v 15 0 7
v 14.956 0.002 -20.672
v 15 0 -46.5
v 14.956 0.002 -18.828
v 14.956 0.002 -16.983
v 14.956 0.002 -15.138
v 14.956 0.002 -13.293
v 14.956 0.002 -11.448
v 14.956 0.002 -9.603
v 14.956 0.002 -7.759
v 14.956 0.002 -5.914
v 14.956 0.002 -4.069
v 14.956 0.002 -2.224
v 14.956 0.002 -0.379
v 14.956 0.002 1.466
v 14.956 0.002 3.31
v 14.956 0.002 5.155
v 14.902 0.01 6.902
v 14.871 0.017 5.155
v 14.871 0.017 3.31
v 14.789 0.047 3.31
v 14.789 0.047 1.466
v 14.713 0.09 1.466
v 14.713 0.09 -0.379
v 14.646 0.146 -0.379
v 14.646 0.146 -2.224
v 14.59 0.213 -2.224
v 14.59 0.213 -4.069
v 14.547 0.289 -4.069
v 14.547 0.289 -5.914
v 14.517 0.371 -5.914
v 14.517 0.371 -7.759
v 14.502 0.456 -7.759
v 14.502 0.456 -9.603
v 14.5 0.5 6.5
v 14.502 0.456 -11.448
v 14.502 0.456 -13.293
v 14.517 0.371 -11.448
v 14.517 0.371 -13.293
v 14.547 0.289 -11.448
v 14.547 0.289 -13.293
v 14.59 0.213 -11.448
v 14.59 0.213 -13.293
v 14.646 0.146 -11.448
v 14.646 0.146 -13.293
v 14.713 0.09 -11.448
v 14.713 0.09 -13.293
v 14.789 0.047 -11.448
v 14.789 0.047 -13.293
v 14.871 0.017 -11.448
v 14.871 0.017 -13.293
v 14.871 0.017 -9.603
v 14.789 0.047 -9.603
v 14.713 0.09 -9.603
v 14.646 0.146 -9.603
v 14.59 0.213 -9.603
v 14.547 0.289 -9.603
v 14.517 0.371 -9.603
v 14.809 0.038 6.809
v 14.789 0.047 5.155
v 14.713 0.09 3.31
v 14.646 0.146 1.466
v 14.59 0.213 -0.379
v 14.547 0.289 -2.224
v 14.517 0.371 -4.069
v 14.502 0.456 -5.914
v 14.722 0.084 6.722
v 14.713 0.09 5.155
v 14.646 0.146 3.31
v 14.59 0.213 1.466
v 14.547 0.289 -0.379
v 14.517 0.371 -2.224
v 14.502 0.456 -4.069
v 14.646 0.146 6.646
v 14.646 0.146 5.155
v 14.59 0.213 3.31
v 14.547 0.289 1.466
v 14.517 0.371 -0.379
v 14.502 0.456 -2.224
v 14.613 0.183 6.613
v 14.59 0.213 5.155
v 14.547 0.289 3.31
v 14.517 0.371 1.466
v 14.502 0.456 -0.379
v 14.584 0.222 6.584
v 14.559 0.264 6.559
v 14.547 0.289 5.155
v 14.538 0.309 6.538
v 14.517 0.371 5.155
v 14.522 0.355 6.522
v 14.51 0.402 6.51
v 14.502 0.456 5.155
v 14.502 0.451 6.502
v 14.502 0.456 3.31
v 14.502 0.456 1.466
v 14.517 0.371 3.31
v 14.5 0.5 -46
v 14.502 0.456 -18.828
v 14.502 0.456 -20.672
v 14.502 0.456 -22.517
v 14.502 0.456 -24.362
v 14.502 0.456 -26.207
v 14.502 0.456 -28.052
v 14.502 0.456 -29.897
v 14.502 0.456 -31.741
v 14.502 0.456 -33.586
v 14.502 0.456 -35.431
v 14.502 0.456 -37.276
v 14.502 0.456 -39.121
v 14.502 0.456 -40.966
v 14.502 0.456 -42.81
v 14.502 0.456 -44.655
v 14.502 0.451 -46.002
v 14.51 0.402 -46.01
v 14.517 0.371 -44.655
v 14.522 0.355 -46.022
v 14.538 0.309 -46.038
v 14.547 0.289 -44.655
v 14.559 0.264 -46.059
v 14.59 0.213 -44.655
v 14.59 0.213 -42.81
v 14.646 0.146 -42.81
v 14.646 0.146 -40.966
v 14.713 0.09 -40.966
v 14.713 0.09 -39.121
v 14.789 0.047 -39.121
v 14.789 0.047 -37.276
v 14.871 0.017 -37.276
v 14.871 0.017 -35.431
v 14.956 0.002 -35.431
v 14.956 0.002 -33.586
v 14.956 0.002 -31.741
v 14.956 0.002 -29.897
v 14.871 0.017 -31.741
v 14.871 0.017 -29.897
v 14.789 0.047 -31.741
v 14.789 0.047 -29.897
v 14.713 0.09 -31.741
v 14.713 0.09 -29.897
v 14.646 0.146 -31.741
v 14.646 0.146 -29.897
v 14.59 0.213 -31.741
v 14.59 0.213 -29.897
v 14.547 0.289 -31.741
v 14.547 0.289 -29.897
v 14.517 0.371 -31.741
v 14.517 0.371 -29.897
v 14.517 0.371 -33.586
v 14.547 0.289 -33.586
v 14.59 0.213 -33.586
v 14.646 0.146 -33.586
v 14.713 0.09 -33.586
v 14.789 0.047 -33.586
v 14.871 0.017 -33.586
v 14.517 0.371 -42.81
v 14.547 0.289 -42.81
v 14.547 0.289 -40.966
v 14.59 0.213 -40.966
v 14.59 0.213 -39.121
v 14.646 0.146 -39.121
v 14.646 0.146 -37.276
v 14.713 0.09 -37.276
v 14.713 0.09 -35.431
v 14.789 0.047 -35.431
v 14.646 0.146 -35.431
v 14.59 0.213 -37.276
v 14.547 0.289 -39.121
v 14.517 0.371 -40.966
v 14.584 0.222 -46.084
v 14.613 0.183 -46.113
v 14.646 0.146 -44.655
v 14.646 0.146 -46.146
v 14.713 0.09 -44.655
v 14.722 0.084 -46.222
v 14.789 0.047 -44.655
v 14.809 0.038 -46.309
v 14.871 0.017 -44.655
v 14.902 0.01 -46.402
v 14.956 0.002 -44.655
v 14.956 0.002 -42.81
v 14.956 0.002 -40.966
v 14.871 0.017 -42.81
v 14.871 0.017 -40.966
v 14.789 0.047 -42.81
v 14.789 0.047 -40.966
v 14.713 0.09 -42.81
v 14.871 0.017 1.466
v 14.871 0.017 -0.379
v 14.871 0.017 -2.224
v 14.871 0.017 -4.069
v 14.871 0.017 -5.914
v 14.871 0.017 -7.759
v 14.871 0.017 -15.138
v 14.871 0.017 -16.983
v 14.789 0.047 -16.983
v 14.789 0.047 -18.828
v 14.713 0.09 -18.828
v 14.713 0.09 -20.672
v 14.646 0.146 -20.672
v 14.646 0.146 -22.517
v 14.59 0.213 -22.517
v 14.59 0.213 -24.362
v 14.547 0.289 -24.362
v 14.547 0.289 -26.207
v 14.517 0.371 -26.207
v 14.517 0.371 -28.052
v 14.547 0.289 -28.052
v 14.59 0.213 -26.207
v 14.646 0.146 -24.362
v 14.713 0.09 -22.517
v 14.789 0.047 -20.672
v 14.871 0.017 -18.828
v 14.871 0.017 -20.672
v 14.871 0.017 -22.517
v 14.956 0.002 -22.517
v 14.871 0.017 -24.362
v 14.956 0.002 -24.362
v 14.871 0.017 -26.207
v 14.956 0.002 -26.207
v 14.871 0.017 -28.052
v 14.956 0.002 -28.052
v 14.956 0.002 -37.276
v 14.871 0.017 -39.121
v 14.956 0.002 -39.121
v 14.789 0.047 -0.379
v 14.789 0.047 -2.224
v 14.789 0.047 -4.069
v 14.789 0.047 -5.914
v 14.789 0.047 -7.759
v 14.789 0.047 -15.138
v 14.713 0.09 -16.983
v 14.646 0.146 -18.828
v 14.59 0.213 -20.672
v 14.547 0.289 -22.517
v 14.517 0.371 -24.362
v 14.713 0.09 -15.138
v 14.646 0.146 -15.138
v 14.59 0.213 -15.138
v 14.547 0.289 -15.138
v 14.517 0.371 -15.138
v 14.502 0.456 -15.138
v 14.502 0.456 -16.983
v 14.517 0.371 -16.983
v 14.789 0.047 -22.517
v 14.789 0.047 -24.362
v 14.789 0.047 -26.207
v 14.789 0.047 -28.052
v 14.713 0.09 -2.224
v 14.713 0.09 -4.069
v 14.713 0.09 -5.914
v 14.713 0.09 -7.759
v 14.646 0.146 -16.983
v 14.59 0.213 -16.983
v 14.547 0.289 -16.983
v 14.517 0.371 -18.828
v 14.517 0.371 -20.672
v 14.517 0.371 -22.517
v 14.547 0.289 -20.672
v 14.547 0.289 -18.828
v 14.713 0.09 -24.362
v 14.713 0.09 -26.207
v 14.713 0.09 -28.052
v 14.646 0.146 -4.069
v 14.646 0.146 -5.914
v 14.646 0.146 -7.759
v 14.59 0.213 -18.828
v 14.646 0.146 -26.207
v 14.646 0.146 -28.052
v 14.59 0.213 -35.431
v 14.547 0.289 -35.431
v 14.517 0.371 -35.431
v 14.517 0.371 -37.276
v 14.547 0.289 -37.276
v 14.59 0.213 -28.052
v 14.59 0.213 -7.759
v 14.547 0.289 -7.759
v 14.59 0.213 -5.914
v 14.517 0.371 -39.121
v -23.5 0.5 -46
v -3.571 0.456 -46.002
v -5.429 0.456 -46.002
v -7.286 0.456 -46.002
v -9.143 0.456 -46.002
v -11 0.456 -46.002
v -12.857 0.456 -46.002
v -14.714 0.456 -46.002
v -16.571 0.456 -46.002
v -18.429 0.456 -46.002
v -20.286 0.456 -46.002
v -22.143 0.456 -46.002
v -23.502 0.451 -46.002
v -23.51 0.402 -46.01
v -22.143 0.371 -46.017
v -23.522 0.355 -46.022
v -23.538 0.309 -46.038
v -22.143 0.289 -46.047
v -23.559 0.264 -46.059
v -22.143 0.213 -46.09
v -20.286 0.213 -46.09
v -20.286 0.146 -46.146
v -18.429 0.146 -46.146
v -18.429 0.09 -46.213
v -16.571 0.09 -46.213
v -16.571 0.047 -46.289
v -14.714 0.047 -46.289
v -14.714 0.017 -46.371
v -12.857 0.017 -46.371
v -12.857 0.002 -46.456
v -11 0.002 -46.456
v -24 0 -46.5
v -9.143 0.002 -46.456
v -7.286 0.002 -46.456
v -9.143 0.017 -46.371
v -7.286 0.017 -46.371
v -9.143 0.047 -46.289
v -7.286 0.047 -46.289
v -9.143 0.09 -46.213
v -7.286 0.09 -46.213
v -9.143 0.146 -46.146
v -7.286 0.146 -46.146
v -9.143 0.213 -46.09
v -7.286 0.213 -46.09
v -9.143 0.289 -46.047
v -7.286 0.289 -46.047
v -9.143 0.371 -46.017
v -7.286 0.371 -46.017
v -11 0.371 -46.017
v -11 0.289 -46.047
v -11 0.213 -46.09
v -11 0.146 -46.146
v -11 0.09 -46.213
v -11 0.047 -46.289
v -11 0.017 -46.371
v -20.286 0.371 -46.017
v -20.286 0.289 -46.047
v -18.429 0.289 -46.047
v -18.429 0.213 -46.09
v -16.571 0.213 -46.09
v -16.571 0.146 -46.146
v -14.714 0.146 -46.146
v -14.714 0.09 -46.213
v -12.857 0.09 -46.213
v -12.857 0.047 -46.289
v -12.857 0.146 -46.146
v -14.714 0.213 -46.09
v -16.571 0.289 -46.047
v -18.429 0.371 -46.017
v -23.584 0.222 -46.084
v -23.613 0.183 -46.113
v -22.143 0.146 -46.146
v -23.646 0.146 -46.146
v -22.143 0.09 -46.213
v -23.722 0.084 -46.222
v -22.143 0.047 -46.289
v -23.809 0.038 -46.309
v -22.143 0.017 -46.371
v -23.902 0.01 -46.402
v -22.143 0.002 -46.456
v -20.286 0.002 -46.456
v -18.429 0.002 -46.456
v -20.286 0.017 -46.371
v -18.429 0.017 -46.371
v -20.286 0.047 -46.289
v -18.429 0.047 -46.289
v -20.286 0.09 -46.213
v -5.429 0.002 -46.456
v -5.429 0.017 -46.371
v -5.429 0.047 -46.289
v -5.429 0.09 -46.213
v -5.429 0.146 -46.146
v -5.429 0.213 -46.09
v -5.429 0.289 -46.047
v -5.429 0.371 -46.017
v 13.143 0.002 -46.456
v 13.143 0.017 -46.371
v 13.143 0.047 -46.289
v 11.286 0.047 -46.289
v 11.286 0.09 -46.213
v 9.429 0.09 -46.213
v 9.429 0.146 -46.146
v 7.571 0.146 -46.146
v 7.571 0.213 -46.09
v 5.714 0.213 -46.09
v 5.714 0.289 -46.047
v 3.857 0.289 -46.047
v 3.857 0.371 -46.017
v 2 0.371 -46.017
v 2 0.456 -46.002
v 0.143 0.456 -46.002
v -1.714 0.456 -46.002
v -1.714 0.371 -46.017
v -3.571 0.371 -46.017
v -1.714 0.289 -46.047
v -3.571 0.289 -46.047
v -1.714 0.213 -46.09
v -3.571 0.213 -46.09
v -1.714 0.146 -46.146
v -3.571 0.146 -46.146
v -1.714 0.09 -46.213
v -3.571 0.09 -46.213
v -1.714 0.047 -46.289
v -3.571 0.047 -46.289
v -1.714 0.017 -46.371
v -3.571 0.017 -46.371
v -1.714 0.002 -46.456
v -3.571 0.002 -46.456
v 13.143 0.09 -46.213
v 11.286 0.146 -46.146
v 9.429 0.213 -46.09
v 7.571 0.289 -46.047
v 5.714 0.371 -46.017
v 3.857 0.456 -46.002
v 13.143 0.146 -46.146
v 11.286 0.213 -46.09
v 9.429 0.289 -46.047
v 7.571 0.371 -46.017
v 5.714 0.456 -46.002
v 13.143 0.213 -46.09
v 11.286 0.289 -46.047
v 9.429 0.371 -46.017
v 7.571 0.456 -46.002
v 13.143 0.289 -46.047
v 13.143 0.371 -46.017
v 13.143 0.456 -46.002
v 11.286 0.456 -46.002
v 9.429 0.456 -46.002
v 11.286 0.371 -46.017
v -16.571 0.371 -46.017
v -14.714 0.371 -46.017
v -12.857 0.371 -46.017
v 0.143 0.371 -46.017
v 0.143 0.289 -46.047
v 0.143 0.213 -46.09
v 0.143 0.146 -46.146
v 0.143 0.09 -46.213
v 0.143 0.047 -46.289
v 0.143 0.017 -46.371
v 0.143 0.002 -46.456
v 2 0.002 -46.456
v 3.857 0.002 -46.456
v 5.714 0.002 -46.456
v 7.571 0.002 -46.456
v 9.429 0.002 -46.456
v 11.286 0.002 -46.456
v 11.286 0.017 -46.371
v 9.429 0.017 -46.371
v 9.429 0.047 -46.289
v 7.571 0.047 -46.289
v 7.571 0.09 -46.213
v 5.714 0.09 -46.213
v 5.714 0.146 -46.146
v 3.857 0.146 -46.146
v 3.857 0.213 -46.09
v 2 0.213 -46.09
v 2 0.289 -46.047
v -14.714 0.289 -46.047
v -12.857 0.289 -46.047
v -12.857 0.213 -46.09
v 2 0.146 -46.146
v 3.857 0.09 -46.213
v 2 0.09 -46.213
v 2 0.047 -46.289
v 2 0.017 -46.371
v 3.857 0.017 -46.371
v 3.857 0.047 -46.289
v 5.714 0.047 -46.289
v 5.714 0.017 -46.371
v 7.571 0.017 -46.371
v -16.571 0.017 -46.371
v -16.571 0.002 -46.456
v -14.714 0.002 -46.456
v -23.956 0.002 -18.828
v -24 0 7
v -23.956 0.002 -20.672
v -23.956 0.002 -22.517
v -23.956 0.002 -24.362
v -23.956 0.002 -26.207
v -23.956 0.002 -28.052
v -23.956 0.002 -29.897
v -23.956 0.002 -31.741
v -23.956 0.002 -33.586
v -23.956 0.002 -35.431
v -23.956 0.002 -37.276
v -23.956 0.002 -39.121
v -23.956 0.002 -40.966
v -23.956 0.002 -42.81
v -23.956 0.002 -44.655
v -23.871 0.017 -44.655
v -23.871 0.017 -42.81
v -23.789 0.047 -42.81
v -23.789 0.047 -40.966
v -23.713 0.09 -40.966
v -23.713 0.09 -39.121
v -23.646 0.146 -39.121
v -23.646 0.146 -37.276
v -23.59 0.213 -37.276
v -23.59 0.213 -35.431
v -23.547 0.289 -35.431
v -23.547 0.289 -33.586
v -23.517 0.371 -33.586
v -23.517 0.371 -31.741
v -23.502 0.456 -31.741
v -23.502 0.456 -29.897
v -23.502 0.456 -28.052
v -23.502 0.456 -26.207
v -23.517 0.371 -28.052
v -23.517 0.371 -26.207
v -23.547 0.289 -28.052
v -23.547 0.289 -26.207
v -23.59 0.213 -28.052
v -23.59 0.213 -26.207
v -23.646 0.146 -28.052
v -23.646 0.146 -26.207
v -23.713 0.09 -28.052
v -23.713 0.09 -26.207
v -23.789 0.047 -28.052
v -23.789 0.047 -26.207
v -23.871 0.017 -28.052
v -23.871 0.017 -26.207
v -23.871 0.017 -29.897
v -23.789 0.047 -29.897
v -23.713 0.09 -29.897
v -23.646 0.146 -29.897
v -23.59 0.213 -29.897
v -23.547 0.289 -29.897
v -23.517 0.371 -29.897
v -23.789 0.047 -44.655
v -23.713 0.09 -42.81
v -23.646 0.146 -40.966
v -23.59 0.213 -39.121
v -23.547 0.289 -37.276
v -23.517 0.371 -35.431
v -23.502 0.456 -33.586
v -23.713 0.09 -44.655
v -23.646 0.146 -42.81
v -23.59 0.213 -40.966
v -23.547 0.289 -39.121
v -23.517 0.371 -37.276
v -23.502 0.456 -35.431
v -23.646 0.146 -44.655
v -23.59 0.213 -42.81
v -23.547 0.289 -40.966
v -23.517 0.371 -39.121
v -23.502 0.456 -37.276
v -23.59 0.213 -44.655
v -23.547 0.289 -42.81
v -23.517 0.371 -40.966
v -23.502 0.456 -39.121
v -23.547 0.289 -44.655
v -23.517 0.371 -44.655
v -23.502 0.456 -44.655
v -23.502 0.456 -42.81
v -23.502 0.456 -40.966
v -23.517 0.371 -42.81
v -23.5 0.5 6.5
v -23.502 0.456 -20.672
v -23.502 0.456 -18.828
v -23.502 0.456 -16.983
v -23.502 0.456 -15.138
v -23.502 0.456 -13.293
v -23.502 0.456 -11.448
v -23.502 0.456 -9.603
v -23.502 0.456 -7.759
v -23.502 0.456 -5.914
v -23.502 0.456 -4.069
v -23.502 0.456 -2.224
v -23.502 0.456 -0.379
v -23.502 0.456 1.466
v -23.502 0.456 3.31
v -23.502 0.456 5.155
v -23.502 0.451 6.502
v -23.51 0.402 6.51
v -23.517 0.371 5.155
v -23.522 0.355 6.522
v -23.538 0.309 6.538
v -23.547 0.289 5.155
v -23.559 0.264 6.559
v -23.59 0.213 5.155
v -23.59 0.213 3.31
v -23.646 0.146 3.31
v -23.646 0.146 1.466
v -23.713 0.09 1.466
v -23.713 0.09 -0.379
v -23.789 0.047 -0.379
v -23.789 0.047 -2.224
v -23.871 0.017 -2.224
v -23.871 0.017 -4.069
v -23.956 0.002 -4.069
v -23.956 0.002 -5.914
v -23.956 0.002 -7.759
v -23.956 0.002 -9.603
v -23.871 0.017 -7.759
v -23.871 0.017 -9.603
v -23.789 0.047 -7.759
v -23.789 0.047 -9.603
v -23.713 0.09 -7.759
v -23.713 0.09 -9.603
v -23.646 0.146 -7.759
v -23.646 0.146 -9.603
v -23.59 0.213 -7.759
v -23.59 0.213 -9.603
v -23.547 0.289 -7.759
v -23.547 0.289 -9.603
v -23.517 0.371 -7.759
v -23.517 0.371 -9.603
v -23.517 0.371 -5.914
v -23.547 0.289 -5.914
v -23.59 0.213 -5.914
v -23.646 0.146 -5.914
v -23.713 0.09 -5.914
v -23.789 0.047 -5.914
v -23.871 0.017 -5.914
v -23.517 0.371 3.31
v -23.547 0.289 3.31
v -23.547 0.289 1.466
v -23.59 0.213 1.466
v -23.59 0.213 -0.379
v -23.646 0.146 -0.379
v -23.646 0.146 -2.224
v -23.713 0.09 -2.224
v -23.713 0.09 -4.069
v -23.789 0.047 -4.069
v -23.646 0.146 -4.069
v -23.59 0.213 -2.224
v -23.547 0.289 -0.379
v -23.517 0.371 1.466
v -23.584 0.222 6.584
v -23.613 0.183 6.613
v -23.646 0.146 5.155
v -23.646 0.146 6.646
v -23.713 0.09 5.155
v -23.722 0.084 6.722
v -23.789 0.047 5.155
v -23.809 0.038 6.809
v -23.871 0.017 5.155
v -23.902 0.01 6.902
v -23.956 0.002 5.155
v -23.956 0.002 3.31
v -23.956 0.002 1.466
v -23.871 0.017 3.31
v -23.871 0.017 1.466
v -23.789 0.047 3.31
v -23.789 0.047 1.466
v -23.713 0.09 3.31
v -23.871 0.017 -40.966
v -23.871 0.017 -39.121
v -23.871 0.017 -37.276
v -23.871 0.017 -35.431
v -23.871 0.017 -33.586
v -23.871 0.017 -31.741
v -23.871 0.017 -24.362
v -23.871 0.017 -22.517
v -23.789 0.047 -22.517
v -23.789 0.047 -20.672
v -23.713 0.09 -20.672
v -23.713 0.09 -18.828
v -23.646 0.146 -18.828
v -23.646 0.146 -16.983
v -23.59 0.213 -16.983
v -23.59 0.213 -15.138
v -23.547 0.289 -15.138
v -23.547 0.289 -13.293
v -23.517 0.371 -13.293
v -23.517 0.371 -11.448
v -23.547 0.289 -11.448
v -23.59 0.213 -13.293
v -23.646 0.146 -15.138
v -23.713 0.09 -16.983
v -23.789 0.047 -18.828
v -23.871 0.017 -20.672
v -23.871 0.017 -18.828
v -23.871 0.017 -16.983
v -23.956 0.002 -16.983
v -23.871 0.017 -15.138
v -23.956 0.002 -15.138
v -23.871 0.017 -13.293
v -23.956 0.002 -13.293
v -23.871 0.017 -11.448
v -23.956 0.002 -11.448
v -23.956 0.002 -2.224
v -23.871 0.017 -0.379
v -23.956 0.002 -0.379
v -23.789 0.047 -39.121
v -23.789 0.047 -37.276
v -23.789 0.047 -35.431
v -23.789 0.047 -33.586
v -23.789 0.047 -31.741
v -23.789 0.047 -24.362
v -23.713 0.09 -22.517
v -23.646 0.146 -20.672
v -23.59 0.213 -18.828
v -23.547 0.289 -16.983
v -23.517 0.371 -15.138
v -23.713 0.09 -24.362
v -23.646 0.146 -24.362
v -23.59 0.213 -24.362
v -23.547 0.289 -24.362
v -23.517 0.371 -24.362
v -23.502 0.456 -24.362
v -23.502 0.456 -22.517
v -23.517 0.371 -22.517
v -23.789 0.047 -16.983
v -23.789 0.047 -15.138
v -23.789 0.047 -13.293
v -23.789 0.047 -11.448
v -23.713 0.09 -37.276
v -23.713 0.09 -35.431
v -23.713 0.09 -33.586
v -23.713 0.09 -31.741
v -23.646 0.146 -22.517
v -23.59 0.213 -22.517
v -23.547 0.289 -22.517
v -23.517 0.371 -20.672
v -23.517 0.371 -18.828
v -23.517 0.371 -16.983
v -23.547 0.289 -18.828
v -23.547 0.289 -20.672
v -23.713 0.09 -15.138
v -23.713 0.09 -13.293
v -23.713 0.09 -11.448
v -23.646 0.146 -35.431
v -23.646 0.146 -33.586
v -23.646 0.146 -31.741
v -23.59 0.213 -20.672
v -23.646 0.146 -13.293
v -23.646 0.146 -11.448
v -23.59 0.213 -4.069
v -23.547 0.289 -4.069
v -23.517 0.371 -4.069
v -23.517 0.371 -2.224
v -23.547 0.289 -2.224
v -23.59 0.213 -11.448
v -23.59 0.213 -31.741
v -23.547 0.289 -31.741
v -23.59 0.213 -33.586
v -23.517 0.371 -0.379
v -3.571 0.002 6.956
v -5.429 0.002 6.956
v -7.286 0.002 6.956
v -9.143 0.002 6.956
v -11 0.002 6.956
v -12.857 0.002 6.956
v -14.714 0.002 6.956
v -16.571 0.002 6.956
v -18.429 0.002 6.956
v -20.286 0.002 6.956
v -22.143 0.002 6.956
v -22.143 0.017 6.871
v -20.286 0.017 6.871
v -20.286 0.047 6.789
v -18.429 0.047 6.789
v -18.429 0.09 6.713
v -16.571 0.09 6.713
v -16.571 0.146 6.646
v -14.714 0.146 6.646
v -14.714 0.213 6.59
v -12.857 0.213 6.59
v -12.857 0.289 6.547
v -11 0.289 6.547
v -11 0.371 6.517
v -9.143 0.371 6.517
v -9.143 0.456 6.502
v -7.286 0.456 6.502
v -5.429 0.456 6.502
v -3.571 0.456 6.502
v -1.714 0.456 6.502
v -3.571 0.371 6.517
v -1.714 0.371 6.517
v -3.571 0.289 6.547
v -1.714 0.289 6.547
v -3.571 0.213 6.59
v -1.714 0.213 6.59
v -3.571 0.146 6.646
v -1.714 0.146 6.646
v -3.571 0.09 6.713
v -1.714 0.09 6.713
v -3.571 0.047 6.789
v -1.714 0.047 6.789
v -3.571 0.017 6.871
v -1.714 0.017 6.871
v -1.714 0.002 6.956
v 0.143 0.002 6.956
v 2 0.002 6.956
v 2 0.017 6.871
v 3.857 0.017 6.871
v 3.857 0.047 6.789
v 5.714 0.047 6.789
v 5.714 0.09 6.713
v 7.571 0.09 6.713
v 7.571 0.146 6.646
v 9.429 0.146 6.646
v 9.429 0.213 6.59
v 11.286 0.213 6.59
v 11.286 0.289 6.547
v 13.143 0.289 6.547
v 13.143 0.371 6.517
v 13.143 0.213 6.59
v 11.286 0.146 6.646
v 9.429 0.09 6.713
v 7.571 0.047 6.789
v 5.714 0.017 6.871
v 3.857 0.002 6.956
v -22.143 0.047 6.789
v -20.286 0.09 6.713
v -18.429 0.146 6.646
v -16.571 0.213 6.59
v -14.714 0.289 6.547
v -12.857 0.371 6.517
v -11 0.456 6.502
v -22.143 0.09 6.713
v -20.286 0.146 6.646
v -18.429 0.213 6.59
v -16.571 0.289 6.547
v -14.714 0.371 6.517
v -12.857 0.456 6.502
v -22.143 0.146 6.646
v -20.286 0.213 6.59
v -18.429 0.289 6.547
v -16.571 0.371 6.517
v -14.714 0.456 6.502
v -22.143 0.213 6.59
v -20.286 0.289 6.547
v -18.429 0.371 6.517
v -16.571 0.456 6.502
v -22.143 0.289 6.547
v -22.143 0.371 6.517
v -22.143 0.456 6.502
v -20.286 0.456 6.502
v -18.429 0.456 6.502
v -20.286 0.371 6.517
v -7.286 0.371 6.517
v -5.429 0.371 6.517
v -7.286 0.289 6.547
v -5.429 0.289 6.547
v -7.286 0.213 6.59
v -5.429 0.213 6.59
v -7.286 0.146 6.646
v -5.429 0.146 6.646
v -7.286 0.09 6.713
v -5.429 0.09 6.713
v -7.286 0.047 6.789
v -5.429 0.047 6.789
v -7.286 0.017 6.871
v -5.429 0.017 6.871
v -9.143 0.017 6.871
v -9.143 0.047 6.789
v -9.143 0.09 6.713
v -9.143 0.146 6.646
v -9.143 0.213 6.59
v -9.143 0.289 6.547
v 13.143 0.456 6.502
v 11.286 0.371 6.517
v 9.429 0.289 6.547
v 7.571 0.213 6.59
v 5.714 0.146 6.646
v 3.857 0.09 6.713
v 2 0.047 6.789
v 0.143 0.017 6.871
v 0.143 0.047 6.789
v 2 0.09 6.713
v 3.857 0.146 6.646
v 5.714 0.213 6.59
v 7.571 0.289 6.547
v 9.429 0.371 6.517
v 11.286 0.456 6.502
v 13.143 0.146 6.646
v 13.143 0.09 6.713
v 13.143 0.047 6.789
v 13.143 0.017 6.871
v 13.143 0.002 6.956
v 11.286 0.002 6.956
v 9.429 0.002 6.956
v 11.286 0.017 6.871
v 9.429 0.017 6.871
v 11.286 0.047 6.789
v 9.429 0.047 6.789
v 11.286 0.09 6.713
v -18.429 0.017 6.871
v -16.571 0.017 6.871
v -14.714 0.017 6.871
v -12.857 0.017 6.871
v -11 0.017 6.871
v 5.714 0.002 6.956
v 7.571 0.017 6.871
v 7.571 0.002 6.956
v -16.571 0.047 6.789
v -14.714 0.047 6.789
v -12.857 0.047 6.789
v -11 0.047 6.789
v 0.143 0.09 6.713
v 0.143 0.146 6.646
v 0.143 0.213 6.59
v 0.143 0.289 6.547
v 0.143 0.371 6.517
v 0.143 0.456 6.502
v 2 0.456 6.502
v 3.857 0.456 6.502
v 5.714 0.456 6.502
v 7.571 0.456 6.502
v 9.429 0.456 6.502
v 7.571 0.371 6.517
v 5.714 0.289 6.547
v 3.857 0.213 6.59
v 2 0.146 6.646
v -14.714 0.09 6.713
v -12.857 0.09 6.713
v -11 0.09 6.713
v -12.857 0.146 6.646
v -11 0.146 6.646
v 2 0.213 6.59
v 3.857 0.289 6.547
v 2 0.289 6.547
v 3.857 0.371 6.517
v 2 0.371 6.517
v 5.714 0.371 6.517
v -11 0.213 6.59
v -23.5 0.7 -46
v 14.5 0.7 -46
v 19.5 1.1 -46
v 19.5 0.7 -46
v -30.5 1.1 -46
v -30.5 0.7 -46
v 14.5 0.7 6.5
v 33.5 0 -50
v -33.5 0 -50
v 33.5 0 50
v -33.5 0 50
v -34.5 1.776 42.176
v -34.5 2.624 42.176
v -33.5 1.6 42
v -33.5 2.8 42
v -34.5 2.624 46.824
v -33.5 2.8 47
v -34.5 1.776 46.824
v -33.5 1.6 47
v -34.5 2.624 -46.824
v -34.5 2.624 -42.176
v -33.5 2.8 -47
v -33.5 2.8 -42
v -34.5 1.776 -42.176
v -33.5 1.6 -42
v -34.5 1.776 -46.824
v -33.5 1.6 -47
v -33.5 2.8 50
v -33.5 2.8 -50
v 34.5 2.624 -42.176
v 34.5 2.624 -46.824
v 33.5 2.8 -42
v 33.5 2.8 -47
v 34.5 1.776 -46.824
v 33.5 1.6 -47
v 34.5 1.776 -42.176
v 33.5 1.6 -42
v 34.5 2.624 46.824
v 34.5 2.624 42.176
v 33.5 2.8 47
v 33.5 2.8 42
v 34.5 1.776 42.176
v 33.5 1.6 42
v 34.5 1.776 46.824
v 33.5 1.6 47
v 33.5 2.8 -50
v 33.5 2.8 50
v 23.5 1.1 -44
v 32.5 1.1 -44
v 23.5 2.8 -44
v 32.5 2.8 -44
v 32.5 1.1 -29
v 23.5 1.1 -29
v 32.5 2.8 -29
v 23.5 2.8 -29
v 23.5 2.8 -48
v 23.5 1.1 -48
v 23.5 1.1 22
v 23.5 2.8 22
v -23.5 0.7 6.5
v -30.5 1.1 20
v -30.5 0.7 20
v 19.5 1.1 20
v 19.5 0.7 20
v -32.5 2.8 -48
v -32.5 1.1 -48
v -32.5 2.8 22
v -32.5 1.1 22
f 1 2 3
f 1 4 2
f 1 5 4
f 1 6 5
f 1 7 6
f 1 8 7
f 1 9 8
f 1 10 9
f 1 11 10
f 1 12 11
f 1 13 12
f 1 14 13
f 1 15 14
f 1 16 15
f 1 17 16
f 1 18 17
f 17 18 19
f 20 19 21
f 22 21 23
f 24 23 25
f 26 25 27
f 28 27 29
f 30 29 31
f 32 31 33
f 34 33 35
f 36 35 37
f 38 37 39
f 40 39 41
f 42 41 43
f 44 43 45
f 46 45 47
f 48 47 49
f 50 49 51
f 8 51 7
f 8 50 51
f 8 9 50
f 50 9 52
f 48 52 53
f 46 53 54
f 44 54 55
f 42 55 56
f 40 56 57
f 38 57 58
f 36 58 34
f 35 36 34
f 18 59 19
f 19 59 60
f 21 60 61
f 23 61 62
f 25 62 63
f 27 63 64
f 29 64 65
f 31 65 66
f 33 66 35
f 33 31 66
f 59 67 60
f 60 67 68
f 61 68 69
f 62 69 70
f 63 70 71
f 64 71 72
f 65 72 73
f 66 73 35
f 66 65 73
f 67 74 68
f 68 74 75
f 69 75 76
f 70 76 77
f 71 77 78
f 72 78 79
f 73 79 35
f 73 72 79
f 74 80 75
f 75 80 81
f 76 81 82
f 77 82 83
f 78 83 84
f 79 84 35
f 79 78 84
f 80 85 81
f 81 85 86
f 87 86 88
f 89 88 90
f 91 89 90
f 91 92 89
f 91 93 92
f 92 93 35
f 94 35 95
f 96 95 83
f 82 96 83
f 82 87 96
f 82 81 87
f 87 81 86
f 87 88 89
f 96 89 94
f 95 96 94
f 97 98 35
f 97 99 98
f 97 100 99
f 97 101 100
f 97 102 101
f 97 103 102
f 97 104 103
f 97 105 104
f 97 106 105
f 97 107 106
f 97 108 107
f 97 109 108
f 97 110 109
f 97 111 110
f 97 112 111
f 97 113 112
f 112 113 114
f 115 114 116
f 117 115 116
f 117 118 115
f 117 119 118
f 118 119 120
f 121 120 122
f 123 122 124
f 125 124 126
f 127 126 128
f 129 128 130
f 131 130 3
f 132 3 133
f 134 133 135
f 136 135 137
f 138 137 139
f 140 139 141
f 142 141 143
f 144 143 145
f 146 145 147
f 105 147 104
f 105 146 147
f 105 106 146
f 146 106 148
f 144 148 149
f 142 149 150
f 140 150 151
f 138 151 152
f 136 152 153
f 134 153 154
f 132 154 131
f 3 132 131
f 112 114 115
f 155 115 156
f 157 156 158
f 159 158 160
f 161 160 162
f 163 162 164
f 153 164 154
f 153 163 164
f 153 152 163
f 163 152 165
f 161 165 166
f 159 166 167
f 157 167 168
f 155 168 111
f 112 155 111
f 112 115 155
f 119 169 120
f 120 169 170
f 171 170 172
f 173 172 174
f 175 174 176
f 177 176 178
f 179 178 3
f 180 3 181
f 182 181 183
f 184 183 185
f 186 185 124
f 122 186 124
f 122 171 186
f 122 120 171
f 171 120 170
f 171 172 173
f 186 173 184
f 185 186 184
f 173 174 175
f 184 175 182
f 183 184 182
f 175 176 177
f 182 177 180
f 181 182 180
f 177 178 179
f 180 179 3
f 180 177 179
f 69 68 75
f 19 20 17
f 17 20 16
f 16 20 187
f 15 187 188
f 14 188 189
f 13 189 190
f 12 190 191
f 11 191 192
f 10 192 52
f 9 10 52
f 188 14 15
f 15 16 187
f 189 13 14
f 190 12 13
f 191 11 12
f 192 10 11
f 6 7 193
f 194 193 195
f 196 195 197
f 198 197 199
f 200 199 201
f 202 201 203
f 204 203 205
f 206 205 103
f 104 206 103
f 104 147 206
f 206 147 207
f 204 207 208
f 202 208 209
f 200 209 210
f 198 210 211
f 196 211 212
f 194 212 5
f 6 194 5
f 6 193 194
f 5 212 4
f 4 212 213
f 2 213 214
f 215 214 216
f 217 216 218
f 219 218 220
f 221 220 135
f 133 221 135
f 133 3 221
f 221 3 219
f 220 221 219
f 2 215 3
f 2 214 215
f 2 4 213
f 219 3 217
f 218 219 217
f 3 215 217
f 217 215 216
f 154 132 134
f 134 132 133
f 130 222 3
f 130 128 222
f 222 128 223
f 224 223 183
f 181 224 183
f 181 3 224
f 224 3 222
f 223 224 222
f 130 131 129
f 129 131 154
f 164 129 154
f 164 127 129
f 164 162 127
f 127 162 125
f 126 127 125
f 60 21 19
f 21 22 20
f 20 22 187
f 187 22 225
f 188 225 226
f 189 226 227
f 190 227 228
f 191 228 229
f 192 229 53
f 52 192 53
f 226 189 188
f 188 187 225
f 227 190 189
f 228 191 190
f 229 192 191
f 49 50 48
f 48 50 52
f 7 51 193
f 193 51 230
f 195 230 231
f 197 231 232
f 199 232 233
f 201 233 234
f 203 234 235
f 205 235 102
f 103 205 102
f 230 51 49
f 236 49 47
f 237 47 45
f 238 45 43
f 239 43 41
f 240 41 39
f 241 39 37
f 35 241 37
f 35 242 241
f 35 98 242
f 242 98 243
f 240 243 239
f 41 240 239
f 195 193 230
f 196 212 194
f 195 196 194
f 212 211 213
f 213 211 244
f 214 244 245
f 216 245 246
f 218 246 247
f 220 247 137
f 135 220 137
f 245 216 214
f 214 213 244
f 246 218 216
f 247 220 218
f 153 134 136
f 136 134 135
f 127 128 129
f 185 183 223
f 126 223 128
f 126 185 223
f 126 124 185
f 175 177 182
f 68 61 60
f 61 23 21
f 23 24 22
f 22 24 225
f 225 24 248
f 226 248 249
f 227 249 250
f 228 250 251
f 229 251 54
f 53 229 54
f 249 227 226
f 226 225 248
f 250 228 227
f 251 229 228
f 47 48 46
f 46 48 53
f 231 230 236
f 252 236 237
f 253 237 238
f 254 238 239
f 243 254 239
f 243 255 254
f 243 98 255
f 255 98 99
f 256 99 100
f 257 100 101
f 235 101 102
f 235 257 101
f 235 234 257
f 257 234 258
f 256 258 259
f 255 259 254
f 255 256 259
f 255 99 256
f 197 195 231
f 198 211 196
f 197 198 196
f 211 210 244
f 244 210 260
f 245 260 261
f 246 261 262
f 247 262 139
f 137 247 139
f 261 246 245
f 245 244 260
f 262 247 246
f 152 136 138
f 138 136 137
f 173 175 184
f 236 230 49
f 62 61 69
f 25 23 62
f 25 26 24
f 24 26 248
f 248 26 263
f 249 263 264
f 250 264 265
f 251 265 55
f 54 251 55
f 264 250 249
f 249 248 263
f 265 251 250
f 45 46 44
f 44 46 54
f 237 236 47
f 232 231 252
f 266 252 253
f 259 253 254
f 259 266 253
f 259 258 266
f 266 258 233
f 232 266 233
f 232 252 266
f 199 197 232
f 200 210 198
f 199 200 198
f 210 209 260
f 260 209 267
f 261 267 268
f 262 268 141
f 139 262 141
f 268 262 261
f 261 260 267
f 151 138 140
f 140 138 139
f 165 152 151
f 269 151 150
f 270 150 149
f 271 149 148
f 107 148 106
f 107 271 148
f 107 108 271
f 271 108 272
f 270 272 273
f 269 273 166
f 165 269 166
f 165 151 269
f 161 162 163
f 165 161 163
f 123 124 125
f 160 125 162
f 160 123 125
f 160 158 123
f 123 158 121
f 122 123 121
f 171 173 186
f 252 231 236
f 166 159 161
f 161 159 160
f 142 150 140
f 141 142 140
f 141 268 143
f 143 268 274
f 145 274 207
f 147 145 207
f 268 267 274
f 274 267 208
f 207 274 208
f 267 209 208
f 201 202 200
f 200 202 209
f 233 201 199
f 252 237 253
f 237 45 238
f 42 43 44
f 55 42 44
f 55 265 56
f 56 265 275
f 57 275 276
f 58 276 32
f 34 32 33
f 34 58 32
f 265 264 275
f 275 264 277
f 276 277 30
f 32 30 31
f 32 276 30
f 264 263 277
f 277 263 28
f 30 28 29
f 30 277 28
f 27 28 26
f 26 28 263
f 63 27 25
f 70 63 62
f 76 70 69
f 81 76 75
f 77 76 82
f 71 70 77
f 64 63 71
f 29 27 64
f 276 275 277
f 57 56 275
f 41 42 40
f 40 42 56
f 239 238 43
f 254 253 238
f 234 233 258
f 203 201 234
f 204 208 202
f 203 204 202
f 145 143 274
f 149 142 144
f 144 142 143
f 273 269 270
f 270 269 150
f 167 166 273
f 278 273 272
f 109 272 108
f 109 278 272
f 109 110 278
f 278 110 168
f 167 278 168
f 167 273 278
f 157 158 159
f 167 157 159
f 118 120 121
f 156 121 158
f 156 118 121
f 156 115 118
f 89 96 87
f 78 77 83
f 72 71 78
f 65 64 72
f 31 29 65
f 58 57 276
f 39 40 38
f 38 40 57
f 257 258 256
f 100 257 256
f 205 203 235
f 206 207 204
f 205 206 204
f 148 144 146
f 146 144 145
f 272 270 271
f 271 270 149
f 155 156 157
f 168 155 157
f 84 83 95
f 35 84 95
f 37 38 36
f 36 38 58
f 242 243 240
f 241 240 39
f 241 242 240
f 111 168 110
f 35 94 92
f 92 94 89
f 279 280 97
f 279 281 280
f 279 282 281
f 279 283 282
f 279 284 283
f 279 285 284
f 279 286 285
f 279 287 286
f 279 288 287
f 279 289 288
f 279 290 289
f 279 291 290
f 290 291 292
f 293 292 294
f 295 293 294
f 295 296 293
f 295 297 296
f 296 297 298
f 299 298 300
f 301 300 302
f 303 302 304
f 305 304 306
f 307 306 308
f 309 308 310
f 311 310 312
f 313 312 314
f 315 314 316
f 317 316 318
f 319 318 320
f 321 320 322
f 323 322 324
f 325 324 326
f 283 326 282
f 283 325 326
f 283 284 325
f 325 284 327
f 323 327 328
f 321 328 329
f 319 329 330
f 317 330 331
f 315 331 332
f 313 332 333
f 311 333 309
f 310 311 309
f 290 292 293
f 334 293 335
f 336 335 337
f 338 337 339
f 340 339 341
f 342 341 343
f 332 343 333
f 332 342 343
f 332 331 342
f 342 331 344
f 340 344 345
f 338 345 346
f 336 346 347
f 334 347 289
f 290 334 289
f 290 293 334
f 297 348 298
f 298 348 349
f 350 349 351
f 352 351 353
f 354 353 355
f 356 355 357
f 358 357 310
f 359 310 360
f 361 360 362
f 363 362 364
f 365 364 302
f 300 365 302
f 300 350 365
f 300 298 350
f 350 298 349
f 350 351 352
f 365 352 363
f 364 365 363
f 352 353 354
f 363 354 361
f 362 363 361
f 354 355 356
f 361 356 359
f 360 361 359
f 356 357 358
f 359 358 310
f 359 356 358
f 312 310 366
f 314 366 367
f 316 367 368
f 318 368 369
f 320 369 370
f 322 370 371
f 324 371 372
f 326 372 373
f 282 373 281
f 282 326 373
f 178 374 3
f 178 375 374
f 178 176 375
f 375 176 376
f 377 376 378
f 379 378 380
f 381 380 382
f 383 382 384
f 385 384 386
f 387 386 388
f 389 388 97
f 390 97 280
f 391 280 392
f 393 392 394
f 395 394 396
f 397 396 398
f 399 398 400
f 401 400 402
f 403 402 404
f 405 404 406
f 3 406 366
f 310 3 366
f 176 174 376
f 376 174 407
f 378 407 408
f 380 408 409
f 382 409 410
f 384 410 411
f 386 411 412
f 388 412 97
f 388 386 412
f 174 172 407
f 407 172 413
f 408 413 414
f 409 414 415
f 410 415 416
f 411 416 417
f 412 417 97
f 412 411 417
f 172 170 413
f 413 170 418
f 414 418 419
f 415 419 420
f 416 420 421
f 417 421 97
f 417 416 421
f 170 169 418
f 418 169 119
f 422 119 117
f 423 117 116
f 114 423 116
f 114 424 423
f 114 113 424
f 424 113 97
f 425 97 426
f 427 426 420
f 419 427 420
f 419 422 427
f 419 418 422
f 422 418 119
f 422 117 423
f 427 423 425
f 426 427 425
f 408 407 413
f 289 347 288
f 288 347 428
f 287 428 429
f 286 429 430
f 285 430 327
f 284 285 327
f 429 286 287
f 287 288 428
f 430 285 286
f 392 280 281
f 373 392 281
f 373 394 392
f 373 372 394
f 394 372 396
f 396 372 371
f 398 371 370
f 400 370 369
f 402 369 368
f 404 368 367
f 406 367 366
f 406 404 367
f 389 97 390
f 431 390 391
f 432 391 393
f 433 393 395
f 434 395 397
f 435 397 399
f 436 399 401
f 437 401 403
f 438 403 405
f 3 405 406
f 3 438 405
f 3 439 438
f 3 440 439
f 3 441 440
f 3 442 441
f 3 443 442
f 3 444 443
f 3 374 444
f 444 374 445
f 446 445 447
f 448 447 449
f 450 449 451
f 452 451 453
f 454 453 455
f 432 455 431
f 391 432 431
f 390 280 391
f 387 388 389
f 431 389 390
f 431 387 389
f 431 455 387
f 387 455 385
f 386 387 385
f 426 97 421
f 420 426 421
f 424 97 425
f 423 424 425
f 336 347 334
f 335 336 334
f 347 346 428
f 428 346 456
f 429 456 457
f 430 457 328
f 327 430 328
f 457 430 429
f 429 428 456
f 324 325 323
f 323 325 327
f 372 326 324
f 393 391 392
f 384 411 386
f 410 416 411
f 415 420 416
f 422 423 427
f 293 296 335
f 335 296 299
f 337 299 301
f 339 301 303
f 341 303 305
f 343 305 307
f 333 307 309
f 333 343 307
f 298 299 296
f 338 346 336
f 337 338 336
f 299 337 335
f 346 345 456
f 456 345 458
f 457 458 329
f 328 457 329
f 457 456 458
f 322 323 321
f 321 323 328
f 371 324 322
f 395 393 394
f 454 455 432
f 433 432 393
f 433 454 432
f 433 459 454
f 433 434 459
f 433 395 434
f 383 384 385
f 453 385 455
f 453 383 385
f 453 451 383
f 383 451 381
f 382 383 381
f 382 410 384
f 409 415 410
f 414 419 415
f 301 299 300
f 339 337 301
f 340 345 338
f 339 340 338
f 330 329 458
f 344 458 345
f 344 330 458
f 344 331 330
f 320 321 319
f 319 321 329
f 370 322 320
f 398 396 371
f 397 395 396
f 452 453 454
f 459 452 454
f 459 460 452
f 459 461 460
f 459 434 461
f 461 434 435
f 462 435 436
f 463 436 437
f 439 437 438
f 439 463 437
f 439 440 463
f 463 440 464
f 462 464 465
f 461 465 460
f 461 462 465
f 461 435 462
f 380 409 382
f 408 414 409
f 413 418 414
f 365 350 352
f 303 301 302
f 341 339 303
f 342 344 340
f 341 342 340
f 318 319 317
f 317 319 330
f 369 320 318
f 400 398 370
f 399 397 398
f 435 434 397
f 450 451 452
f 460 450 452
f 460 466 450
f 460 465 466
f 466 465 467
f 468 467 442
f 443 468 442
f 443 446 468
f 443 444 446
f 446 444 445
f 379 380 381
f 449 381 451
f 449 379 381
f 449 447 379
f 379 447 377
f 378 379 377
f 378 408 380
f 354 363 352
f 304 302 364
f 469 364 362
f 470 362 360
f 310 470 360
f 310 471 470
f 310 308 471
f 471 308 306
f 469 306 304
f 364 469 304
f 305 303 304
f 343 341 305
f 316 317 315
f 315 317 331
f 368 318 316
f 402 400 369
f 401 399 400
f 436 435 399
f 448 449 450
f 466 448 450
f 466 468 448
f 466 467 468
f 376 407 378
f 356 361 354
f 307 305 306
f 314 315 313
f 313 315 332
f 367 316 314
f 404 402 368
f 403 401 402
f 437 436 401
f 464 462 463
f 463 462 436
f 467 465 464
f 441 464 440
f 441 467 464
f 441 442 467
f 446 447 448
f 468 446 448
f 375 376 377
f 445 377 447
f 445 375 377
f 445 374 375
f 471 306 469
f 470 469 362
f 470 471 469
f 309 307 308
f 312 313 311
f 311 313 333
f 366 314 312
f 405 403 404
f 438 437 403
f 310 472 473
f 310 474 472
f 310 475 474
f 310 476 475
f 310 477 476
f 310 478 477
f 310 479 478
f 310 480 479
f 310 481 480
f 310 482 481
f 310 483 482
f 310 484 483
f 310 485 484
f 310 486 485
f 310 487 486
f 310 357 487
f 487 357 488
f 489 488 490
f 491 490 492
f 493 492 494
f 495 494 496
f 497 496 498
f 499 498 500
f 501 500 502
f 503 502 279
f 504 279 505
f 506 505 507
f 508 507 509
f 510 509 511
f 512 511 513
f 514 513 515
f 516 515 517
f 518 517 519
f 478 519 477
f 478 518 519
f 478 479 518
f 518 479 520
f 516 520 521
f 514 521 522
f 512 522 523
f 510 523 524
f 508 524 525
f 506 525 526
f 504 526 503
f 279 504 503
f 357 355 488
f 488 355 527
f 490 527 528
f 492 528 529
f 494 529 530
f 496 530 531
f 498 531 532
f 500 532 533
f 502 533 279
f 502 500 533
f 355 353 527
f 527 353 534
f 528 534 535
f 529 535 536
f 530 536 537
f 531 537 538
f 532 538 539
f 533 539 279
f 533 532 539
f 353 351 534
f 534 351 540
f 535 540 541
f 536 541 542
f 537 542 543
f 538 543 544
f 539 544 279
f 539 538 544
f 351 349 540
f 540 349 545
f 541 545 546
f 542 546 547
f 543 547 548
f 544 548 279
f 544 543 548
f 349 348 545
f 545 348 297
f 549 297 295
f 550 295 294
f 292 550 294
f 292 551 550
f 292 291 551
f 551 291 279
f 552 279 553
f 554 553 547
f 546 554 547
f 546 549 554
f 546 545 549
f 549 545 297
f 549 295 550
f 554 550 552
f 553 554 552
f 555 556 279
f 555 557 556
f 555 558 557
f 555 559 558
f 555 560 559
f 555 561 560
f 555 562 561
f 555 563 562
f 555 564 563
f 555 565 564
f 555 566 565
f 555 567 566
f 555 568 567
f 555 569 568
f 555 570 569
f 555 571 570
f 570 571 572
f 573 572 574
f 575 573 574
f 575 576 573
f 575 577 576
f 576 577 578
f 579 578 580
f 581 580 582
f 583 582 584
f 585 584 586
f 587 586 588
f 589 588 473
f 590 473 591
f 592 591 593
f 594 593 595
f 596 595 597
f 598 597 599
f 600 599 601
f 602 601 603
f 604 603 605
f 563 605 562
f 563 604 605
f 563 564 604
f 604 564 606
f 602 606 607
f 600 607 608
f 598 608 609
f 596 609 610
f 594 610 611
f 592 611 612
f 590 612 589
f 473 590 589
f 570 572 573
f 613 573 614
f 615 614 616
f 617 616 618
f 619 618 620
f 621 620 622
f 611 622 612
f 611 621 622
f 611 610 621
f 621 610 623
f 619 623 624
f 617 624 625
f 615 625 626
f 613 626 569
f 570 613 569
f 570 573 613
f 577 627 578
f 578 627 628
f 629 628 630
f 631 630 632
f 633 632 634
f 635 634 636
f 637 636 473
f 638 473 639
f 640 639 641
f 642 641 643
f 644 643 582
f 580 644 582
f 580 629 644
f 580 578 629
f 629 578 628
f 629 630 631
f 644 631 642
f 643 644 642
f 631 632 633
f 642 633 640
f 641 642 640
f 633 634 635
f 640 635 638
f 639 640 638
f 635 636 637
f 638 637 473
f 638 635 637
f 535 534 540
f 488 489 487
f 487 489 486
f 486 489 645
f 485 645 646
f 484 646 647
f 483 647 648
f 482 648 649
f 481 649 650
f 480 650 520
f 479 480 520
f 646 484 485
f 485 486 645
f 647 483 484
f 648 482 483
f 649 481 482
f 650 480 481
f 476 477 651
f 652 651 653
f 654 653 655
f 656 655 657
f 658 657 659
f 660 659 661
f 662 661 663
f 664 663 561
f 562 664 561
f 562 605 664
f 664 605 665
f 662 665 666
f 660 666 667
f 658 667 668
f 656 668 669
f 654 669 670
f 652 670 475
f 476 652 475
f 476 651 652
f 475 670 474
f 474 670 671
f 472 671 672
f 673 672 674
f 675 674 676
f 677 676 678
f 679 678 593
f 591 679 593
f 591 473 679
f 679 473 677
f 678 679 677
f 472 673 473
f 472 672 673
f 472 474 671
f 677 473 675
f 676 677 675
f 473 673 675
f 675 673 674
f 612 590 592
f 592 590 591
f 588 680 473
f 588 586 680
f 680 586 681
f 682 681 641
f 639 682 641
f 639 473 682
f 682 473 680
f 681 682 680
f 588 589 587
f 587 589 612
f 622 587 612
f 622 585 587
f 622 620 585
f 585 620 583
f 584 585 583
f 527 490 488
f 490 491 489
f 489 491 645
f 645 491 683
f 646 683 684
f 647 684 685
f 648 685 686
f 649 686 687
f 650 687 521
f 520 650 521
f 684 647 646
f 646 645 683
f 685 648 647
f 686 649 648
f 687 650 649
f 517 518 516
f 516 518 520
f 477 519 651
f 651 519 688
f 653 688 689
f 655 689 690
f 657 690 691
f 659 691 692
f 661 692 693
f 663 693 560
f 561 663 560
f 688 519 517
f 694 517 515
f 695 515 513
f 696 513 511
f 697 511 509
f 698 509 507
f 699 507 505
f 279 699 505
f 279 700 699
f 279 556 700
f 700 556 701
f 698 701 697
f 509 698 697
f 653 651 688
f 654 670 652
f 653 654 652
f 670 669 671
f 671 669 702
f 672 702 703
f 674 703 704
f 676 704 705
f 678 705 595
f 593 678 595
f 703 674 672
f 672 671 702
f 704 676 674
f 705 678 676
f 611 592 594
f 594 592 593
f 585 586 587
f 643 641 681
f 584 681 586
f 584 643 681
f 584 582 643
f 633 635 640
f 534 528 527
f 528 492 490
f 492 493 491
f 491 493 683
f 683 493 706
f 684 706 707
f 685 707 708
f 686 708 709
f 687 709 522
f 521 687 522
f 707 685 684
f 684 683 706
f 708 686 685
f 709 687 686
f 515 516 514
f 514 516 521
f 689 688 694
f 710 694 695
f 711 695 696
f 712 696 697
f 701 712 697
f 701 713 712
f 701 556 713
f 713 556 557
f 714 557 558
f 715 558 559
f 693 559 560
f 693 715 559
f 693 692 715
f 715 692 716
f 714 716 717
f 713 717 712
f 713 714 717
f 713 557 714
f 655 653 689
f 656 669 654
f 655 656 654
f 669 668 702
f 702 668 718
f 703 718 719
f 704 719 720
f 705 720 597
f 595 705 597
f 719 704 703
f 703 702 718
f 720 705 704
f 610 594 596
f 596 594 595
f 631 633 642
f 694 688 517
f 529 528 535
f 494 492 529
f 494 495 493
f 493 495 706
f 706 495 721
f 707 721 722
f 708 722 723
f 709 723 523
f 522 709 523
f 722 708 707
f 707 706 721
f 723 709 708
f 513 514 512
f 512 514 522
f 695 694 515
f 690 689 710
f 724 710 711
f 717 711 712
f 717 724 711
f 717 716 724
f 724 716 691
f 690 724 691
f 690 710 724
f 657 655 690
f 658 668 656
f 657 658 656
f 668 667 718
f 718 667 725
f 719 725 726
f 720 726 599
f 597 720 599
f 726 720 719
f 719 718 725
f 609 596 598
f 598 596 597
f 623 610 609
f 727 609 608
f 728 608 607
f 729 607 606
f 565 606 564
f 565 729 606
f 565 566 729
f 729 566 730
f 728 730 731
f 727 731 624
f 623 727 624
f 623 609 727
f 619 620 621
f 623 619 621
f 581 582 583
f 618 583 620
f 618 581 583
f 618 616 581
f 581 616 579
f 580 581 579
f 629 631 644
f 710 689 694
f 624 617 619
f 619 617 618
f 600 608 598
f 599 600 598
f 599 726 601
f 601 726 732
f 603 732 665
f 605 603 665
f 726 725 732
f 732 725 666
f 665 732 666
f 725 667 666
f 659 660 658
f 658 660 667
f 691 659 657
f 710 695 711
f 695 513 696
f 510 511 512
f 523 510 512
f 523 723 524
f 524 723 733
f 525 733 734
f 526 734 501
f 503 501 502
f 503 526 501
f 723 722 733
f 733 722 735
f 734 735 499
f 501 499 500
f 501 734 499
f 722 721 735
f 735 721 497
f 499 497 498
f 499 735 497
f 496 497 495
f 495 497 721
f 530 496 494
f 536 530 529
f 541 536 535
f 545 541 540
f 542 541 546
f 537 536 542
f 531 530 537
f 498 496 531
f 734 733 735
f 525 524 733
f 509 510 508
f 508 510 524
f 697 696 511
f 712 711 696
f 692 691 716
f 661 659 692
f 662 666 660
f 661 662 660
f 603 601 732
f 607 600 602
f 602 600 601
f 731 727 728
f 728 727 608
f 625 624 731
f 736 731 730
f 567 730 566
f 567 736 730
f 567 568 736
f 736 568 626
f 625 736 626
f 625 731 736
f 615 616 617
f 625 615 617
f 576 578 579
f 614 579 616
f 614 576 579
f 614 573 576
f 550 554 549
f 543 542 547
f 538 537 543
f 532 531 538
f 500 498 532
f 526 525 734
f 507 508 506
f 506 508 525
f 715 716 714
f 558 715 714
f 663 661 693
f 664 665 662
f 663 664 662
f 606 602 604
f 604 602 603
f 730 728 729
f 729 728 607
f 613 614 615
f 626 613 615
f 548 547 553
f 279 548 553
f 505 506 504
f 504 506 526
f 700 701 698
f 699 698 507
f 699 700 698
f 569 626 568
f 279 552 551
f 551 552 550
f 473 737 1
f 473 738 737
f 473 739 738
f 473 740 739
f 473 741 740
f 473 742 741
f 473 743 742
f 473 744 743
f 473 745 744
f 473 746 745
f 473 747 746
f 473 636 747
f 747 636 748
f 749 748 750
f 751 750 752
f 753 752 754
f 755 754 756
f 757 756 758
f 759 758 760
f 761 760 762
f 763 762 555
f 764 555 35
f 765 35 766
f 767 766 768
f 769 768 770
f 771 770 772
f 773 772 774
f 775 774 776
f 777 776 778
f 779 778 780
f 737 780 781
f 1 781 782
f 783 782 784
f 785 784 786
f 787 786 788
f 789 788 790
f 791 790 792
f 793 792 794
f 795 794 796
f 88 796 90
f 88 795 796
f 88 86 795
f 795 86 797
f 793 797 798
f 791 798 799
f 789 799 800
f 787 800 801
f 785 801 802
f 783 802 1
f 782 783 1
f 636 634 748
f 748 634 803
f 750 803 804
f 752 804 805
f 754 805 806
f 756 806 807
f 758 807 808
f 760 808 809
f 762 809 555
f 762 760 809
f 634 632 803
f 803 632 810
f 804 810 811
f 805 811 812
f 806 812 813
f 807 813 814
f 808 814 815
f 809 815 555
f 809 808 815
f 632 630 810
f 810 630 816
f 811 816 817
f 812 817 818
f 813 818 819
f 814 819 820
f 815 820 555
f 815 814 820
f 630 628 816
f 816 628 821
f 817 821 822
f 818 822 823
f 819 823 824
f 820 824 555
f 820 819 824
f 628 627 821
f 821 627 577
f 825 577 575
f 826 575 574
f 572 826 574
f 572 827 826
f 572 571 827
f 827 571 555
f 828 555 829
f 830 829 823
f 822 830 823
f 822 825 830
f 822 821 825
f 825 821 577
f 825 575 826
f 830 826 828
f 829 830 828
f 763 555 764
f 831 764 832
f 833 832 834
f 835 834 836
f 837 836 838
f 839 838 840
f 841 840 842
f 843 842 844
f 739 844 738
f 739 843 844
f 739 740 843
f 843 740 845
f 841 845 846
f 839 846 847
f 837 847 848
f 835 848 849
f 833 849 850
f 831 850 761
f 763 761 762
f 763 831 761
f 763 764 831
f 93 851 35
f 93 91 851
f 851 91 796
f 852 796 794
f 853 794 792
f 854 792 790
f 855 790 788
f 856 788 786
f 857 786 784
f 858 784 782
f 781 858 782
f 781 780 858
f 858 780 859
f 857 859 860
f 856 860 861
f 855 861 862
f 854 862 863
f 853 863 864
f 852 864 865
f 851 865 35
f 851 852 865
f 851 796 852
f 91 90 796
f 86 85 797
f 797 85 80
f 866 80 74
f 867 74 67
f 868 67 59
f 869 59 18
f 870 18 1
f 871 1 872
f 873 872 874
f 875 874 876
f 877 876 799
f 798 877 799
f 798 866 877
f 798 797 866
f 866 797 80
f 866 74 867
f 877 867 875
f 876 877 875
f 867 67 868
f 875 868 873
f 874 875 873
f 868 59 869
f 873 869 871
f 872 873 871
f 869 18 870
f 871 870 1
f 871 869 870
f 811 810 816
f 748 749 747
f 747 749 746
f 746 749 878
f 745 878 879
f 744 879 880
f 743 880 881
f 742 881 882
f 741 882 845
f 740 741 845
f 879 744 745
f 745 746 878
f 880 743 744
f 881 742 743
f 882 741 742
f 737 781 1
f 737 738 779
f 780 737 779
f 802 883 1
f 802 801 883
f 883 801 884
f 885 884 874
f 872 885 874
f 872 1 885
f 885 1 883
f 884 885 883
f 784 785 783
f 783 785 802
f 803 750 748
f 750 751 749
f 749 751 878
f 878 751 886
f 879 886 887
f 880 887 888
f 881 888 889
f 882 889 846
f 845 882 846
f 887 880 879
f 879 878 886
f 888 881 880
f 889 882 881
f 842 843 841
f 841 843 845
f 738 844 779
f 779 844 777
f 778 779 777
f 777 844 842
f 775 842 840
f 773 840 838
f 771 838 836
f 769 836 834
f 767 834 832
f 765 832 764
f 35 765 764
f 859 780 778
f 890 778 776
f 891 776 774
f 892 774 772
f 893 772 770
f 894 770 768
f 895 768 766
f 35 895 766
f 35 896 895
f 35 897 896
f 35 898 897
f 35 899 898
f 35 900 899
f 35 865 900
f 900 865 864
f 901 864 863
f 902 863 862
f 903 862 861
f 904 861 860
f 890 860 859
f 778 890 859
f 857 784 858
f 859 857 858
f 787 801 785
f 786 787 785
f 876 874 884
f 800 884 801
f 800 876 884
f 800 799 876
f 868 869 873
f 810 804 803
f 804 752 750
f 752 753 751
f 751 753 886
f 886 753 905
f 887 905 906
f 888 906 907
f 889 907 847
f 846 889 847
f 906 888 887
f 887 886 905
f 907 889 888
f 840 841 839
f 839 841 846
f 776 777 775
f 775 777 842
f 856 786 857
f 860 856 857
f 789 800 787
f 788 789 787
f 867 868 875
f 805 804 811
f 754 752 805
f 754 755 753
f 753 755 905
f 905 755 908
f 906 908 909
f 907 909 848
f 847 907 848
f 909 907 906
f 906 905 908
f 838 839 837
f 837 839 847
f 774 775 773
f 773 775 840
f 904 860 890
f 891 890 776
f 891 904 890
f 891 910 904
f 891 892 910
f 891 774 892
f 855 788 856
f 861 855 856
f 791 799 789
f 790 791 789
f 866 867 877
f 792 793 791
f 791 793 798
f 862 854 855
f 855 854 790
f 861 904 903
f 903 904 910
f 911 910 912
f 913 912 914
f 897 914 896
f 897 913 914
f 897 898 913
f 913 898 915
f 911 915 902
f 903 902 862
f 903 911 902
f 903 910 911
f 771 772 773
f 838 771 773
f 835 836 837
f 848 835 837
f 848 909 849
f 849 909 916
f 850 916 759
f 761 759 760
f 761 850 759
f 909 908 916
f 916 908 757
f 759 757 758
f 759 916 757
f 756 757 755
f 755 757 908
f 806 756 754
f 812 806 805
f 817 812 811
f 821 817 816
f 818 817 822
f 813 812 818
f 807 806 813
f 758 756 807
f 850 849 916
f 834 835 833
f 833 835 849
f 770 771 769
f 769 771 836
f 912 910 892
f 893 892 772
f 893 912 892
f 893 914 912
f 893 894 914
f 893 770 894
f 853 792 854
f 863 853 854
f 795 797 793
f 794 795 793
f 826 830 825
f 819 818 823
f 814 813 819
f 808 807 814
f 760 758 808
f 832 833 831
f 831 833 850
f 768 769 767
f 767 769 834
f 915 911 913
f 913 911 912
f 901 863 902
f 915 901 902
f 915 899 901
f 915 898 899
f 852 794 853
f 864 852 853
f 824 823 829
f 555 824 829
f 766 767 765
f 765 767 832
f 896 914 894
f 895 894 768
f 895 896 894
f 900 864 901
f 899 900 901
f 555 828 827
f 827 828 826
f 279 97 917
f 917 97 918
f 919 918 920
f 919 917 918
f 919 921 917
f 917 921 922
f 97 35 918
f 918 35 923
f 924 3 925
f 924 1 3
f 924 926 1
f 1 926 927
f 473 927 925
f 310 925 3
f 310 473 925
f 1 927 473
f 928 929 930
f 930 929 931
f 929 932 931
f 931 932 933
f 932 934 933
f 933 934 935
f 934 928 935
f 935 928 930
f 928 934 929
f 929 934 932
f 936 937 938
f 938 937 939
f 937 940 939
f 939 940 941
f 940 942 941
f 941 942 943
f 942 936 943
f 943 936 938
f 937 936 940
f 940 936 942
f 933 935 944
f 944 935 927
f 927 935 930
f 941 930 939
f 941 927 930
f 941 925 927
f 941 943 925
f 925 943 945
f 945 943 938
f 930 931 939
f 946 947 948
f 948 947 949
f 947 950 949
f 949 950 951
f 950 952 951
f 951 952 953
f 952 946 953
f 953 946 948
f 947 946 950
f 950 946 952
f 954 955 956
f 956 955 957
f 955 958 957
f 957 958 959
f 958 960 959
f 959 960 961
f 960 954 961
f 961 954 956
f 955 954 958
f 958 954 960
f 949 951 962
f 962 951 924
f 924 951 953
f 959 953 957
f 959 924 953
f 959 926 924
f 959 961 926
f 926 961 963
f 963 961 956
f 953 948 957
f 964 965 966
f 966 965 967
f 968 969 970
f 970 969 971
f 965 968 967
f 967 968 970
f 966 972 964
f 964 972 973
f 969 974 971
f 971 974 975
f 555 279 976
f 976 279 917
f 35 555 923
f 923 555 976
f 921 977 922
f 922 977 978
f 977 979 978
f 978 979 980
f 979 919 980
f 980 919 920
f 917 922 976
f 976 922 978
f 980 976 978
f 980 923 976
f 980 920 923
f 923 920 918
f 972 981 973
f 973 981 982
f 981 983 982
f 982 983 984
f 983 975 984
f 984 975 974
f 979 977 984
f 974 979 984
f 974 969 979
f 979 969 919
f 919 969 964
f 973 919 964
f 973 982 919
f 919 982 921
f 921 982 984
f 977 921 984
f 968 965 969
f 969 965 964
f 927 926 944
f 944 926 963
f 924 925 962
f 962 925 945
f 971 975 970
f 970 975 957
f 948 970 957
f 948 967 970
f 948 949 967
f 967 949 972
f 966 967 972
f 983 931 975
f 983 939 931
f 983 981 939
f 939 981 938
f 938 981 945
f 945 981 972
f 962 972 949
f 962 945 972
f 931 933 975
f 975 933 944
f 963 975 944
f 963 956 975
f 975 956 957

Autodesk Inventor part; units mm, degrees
ref_plane "YZ Plane" through (0, 0, 0) normal (1, 0, 0) x (0, 1, 0)
ref_plane "XZ Plane" through (0, 0, 0) normal (0, 1, 0) x (-1, 0, 0)
ref_plane "XY Plane" through (0, 0, 0) normal (0, 0, 1) x (1, 0, 0)
sketch "Sketch1" plane through (0, 0, 0) normal (0, 1, 0) x (-1, 0, 0)
  line L0 (-33.5, -50) -> (33.5, -50)
  line L1 (33.5, -50) -> (33.5, 50)
  line L2 (33.5, 50) -> (-33.5, 50)
  line L3 (-33.5, 50) -> (-33.5, -50)
  line L4 (-33.5, -50) -> (33.5, 50) construction
  line L5 (33.5, -50) -> (-33.5, 50) construction
  point P0 (0, 0)
  dimension "d0" = 67
  dimension "d1" = 100
extrude "Extrusion1" add sketch "Sketch1" along normal blind 2.8
sketch "Sketch2" plane through (0, 2.8, 0) normal (0, 1, 0) x (1, 0, 0)
  line L0 (33.5, 50) -> (-33.5, 50) projected
  line L1 (-32.5, -22) -> (23.5, -22)
  line L2 (23.5, -22) -> (23.5, 48)
  line L3 (23.5, 48) -> (-32.5, 48)
  line L4 (-32.5, 48) -> (-32.5, -22)
  line L5 (-32.5, -22) -> (23.5, 48) construction
  line L6 (23.5, -22) -> (-32.5, 48) construction
  line L7 (-33.5, 50) -> (-33.5, -50) projected
  point P0 (0, 0)
  point P1 (-4.5, 13)
  point P2 (-4.5, 13)
  dimension "d5" = 56
  dimension "d6" = 70
  dimension "d7" = 2
  dimension "d22" = 1
extrude "Extrusion2" cut sketch "Sketch2" against normal blind 1.7
sketch "Sketch3" plane through (0, 1.1, 0) normal (0, 1, 0) x (1, 0, 0)
  line L0 (23.5, -22) -> (-32.5, -22) projected
  line L1 (23.5, 48) -> (23.5, -22) projected
  line L2 (-32.5, 48) -> (23.5, 48) projected
  line L3 (-32.5, -22) -> (-32.5, 48) projected
  line L4 (-30.5, 46) -> (19.5, 46)
  line L5 (19.5, 46) -> (19.5, -20)
  line L6 (19.5, -20) -> (-30.5, -20)
  line L7 (-30.5, -20) -> (-30.5, 46)
  point P0 (0, 0)
  dimension "d10" = 2
  dimension "d11" = 2
  dimension "d12" = 4
  dimension "d13" = 2
extrude "Extrusion3" cut sketch "Sketch3" against normal blind 0.4 contours L4 L5 L6 L7
sketch "Sketch8" plane through (0, 0.7, 0) normal (0, 1, 0) x (1, 0, 0)
  line L0 (-30.5, 46) -> (19.5, 46) projected
  line L1 (-33.5, 50) -> (-33.5, -50) projected
  line L2 (33.5, 50) -> (-33.5, 50) projected
  line L3 (14.5, -6.5) -> (-23.5, -6.5)
  line L4 (-23.5, -6.5) -> (-23.5, 46)
  line L5 (-23.5, 46) -> (14.5, 46)
  line L6 (14.5, 46) -> (14.5, -6.5)
  point P0 (0, 0)
  dimension "d36" = 10
  dimension "d37" = 4
  dimension "d38" = 38
  dimension "d39" = 52.5
extrude "Extrusion7" cut sketch "Sketch8" against normal up to next
sketch "Sketch4" plane through (0, 2.8, 0) normal (0, 1, 0) x (1, 0, 0)
  line L0 (23.5, 48) -> (23.5, -22) projected
  line L1 (33.5, -50) -> (33.5, 50) projected
  line L2 (23.5, 44) -> (32.5, 44)
  line L3 (32.5, 44) -> (32.5, 29)
  line L4 (32.5, 29) -> (23.5, 29)
  line L5 (23.5, 29) -> (23.5, 44)
  line L6 (-32.5, 48) -> (23.5, 48) projected
  point P0 (0, 0)
  dimension "d18" = 1
  dimension "d21" = 15
  dimension "d33" = 4
extrude "Extrusion4" cut sketch "Sketch4" against normal up to surface (1.7 mm away)
sketch "Sketch6" plane through (33.5, 0, 50) normal (1, 0, 0) x (0, 0, -1)
  line L0 (100, 0) -> (100, 2.8) projected
  line L1 (0, 2.8) -> (100, 2.8) projected
  line L2 (0, 0) -> (0, 2.8) projected
  line L3 (3, 2.8) -> (8, 2.8)
  line L4 (8, 2.8) -> (8, 1.6)
  line L5 (8, 1.6) -> (3, 1.6)
  line L6 (3, 1.6) -> (3, 2.8)
  line L7 (92, 2.8) -> (97, 2.8)
  line L8 (97, 2.8) -> (97, 1.6)
  line L9 (97, 1.6) -> (92, 1.6)
  line L10 (92, 1.6) -> (92, 2.8)
  point P0 (50, 0)
  dimension "d23" = 5
  dimension "d24" = 1.2
  dimension "d25" = 3
  dimension "d26" = 5
  dimension "d27" = 1.2
  dimension "d28" = 3
extrude "Extrusion5" add sketch "Sketch6" along normal blind 1 draft -10
sketch "Sketch7" plane through (-33.5, 0, -50) normal (-1, 0, 0) x (0, 0, 1)
  line L0 (92, 1.6) -> (97, 1.6) projected
  line L1 (97, 1.6) -> (97, 2.8) projected
  line L2 (97, 2.8) -> (92, 2.8) projected
  line L3 (92, 2.8) -> (92, 1.6) projected
  line L4 (3, 2.8) -> (3, 1.6) projected
  line L5 (8, 2.8) -> (3, 2.8) projected
  line L6 (3, 1.6) -> (8, 1.6) projected
  line L7 (8, 1.6) -> (8, 2.8) projected
  point P0 (50, 0)
extrude "Extrusion6" add sketch "Sketch7" along normal blind 1 draft -10
fillet "Fillet1" radius 0.5 4 edges at (-23.5, 0, -19.75) (-4.5, 0, -46) (-4.5, 0, 6.5) (14.5, 0, -19.75)
properties part number "TopTouch"
